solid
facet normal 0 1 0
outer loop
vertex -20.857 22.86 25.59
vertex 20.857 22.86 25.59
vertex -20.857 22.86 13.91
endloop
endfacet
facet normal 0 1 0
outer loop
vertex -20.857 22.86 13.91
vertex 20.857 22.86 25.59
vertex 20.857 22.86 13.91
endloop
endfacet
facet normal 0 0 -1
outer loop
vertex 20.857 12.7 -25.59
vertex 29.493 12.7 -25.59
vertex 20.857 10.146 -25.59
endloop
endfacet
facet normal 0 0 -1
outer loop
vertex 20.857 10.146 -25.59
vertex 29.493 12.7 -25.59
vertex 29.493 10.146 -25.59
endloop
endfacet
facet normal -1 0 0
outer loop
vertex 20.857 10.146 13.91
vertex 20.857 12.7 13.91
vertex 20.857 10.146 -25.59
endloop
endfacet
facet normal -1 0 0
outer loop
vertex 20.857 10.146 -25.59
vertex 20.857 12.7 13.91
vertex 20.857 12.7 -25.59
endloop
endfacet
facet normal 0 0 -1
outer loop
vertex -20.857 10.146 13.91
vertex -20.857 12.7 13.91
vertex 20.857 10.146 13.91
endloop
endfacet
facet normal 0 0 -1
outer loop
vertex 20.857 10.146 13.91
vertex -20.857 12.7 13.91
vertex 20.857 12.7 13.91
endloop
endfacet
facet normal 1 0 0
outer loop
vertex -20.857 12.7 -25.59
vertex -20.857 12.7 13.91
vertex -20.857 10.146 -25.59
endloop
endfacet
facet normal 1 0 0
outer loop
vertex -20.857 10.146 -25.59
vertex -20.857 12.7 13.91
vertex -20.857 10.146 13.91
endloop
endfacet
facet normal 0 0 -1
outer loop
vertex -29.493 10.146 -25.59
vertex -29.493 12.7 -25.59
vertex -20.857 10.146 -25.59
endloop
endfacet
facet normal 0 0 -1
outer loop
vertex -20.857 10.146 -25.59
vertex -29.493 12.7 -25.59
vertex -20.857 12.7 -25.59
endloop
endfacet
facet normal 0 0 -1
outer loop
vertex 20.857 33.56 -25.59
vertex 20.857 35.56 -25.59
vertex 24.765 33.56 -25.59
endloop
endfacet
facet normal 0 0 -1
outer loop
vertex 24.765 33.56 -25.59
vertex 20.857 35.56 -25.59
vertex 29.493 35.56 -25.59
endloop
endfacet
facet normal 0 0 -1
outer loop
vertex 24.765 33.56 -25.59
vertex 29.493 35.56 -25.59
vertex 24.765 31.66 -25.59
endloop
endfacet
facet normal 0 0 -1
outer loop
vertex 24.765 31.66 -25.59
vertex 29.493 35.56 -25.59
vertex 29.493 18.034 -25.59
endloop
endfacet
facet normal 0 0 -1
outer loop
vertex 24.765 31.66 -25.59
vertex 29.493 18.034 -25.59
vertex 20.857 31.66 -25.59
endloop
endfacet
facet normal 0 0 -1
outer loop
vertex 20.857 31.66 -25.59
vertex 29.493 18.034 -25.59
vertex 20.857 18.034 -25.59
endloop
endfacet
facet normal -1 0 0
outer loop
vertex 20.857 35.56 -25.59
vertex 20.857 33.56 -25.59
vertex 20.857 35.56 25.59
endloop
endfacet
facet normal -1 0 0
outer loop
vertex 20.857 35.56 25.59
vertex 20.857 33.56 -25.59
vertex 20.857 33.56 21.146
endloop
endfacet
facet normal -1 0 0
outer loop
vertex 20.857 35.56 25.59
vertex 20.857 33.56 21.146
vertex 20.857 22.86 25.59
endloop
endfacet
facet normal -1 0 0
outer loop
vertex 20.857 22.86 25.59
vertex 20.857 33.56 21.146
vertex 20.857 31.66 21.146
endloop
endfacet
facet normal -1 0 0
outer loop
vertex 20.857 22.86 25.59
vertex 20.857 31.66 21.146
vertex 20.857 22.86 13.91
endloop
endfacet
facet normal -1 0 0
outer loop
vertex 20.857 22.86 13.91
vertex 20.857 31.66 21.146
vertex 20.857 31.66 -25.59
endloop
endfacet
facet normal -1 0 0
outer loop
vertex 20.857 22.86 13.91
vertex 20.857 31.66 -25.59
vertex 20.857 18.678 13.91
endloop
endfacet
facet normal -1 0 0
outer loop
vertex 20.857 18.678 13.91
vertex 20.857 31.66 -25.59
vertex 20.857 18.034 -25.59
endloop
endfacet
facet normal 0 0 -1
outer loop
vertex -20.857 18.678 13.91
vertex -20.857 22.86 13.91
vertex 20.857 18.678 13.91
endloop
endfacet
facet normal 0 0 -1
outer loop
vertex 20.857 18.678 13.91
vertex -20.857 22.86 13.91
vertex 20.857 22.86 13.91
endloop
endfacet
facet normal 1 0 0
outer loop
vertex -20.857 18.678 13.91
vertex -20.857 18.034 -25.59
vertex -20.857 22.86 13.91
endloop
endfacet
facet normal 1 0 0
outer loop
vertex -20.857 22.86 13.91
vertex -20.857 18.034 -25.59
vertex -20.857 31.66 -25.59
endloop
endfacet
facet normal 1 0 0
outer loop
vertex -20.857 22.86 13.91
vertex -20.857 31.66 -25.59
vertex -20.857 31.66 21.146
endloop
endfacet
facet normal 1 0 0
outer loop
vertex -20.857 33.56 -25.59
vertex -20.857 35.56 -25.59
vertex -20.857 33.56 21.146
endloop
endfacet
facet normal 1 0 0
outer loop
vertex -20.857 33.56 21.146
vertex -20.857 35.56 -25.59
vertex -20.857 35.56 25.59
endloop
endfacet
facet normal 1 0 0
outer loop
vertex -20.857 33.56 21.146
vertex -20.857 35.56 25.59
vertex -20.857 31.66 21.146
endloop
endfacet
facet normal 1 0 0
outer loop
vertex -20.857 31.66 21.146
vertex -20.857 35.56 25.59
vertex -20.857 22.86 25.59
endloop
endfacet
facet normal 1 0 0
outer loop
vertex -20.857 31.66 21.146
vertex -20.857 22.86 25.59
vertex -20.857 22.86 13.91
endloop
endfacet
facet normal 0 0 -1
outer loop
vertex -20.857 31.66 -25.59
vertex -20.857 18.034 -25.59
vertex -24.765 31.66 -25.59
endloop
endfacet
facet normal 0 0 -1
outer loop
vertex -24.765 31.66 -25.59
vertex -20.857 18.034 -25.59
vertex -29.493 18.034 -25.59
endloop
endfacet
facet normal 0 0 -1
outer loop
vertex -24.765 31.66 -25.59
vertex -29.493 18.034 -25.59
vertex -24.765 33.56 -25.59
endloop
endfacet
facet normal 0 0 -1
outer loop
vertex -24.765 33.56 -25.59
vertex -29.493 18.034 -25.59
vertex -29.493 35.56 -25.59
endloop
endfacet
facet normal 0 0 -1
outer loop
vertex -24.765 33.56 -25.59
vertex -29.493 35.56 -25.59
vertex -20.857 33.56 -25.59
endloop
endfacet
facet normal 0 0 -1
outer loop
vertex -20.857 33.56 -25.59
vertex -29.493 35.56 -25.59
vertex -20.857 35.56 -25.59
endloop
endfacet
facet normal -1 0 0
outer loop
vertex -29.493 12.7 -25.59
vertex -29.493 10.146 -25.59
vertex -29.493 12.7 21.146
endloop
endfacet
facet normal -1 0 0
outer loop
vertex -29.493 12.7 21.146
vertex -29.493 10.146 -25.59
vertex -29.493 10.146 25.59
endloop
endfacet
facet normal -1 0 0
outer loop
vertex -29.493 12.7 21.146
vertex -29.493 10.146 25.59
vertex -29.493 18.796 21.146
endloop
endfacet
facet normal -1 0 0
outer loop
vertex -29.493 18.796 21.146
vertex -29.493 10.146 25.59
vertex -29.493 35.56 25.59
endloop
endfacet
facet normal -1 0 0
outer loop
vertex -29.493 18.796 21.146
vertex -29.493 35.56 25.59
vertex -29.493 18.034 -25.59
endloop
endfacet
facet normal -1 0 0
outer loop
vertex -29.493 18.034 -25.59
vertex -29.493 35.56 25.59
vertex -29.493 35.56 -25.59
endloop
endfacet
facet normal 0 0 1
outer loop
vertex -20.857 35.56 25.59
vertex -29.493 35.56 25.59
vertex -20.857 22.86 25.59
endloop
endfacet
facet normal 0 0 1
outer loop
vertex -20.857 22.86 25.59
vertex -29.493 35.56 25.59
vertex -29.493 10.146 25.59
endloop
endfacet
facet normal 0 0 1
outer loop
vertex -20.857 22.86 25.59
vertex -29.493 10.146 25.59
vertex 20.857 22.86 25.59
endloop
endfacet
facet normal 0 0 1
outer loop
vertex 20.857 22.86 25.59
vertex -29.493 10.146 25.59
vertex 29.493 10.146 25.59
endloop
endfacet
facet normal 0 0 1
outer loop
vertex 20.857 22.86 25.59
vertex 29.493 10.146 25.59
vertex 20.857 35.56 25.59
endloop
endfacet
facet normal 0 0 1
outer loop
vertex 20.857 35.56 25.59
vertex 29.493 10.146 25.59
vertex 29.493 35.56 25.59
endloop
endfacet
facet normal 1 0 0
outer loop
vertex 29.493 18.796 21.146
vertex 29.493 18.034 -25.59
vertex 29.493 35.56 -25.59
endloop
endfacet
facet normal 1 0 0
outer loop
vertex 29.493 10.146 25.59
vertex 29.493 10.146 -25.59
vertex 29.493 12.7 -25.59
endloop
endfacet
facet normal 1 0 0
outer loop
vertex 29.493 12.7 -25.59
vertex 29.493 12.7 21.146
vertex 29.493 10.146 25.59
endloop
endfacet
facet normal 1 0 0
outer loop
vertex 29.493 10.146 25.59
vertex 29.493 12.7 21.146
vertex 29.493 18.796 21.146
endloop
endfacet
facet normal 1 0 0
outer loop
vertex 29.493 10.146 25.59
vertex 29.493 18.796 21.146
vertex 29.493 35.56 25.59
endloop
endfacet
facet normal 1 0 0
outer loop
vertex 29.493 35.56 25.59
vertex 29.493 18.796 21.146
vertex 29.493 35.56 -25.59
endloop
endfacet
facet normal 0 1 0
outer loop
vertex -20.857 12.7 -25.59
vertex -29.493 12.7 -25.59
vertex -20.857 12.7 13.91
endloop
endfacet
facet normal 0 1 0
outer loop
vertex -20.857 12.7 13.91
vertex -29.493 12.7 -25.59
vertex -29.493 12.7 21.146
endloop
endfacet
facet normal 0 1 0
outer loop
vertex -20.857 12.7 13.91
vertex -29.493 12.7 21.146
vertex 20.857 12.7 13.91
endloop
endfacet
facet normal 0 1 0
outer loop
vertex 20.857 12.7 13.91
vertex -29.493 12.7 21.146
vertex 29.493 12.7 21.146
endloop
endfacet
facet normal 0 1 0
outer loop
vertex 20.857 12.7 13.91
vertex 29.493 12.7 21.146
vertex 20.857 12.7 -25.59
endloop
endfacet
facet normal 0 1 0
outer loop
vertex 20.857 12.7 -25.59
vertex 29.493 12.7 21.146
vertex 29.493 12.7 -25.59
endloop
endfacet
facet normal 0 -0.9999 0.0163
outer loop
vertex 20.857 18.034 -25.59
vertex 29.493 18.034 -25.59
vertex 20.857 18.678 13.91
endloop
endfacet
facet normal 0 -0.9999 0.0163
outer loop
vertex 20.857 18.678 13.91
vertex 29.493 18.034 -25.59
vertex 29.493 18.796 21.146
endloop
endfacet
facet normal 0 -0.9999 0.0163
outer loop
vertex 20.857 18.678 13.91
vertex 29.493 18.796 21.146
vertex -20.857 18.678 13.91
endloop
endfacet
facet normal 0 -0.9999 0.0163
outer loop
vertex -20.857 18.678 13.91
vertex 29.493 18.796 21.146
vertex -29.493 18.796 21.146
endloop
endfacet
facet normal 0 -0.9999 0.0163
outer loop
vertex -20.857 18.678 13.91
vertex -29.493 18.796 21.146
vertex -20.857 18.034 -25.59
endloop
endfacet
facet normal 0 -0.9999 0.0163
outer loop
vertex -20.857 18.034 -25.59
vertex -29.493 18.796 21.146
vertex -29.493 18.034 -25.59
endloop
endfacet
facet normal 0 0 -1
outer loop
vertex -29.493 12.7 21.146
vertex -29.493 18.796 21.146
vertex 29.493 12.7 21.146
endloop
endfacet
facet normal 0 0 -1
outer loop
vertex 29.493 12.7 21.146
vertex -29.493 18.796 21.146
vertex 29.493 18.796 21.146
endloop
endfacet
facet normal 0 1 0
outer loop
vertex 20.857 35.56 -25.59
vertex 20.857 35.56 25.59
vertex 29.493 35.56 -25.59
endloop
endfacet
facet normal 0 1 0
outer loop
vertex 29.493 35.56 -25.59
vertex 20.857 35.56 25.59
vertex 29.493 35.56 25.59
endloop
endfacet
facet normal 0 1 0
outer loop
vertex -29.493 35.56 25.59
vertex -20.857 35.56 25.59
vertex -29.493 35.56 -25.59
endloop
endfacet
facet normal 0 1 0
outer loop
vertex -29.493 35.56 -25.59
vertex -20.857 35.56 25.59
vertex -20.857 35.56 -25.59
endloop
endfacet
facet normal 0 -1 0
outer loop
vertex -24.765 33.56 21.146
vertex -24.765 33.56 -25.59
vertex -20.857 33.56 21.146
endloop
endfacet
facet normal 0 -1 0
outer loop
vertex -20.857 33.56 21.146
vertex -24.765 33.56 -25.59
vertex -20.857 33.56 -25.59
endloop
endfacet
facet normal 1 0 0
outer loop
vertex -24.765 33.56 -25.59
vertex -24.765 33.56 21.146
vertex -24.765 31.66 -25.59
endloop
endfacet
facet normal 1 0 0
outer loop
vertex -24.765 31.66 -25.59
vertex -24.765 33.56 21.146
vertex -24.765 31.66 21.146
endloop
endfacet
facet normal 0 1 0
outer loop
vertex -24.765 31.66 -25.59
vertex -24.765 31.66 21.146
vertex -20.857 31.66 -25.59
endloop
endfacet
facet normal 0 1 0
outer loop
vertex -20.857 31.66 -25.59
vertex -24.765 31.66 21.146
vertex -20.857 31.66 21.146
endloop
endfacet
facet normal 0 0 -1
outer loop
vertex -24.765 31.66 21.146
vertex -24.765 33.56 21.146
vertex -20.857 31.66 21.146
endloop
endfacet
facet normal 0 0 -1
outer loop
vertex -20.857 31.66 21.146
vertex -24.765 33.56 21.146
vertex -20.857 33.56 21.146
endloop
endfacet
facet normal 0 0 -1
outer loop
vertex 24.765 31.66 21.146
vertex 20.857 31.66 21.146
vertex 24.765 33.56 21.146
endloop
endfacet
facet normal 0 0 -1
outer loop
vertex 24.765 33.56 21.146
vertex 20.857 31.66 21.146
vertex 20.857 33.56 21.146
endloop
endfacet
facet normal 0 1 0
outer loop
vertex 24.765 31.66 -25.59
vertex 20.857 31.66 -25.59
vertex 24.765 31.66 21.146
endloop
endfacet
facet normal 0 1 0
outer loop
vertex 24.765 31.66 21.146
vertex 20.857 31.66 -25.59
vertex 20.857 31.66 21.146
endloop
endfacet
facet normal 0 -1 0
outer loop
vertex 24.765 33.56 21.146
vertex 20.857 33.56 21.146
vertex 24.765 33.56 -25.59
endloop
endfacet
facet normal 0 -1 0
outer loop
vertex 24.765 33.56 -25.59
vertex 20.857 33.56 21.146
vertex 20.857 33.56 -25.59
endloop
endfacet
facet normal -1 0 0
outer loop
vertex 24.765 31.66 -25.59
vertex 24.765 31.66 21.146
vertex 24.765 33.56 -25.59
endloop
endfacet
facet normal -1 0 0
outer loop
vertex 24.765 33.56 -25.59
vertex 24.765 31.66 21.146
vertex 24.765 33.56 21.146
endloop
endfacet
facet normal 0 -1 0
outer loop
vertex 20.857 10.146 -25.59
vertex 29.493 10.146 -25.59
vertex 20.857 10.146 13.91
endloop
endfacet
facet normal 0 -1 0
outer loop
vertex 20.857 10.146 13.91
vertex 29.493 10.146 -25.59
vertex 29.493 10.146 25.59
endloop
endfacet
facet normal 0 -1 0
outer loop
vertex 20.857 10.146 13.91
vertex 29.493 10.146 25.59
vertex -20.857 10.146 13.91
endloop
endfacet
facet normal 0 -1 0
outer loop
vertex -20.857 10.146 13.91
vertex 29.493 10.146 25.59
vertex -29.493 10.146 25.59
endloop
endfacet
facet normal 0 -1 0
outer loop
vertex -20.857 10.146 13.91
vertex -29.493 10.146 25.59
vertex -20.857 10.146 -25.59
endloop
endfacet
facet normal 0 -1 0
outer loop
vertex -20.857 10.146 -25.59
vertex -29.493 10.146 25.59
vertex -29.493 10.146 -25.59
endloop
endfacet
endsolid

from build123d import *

# Parameters (mm, degrees)
BOSS_EXTRUDE1_DEPTH = 22.86
SKETCH3_R           = 27.372592865
CUT_EXTRUDE1_DEPTH  = 69.240761179
SKETCH4_R           = 26.837944266
CUT_EXTRUDE2_DEPTH  = 64.339651167
BOSS_EXTRUDE2_START = 22.86
SKETCH2_3_W         = 2.286
SKETCH2_3_H         = 2.286
SKETCH2_3_R         = 1.05
SKETCH2_3_H_2       = 9.395
BOSS_EXTRUDE2_DEPTH = 12.7
SKETCH5_W           = 49.53
SKETCH5_H           = 1.9
CUT_EXTRUDE4_DEPTH  = 46.736
SKETCH6_W           = 51.181
SKETCH6_H           = 10.146462019
CUT_EXTRUDE5_DEPTH  = 74.476087969


with BuildPart() as part:
    # Sketch2 → Boss-Extrude1 (new body)
    with BuildSketch(Plane(origin=(0, 0, 0), x_dir=(1, 0, 0), z_dir=(0, 1, 0))):
        Polygon((29.493, -25.5905), (29.493, 25.5905), (20.857, 25.5905), (20.857, -13.9095), (-20.857, -13.9095), (-20.857, 25.5905), (-29.493, 25.5905), (-29.493, -25.5905), align=None)
    extrude(amount=BOSS_EXTRUDE1_DEPTH)

    # Sketch3 → Cut-Extrude1 (cut, through all)
    with BuildSketch(Plane(origin=(29.493, 0, 0), x_dir=(0, 0, -1), z_dir=(1, 0, 0))):
        with Locations((2.032, -17.226130846)):
            Circle(SKETCH3_R)
        Polygon((25.5905, 12.7), (-21.1455, 12.7), (-21.1455, 18.796), (25.5905, 18.034), align=None)
    extrude(amount=-CUT_EXTRUDE1_DEPTH, mode=Mode.SUBTRACT)

    # Sketch4 → Cut-Extrude2 (cut, through all)
    with BuildSketch(Plane(origin=(0, 0, -25.5905), x_dir=(-1, 0, 0), z_dir=(0, 0, -1))):
        with Locations((0, -16.88966558)):
            Circle(SKETCH4_R)
    extrude(amount=-CUT_EXTRUDE2_DEPTH, mode=Mode.SUBTRACT)

    # Sketch2_3 → Boss-Extrude2 (add)
    with BuildSketch(Plane(origin=(0, 0, 0), x_dir=(1, 0, 0), z_dir=(0, 1, 0)).offset(BOSS_EXTRUDE2_START)):
        with Locations((22, 24.4475)):
            Rectangle(SKETCH2_3_W, SKETCH2_3_H)
        with Locations((22, 24.4475)):
            Circle(SKETCH2_3_R, mode=Mode.SUBTRACT)
        with Locations((22, -15.0525)):
            Rectangle(SKETCH2_3_W, SKETCH2_3_H)
        with Locations((22, -15.0525)):
            Circle(SKETCH2_3_R, mode=Mode.SUBTRACT)
        with Locations((-22, -15.0525)):
            Rectangle(SKETCH2_3_W, SKETCH2_3_H)
        with Locations((-22, -15.0525)):
            Circle(SKETCH2_3_R, mode=Mode.SUBTRACT)
        with Locations((-22, 24.4475)):
            Rectangle(SKETCH2_3_W, SKETCH2_3_H)
        with Locations((-22, 24.4475)):
            Circle(SKETCH2_3_R, mode=Mode.SUBTRACT)
        Polygon((29.493, 25.5905), (23.143, 25.5905), (23.143, 23.3045), (23.143, -13.9095), (23.143, -16.1955), (23.143, -25.5905), (29.493, -25.5905), align=None)
        with Locations((22, -20.893)):
            Rectangle(SKETCH2_3_W, SKETCH2_3_H_2)
        with Locations((-22, -20.893)):
            Rectangle(SKETCH2_3_W, SKETCH2_3_H_2)
        Polygon((-23.143, 23.3045), (-23.143, 25.5905), (-29.493, 25.5905), (-29.493, -25.5905), (-23.143, -25.5905), (-23.143, -16.1955), (-23.143, -13.9095), align=None)
        with Locations((22, -15.0525)):
            Circle(SKETCH2_3_R)
        with Locations((22, 24.4475)):
            Circle(SKETCH2_3_R)
        Polygon((23.143, -13.9095), (23.143, 23.3045), (20.857, 23.3045), (20.857, 4.6975), (20.857, -13.9095), align=None)
        Polygon((-20.857, 4.6975), (-20.857, 23.3045), (-23.143, 23.3045), (-23.143, -13.9095), (-20.857, -13.9095), align=None)
        with Locations((-22, 24.4475)):
            Circle(SKETCH2_3_R)
        with Locations((-22, -15.0525)):
            Circle(SKETCH2_3_R)
    extrude(amount=BOSS_EXTRUDE2_DEPTH)

    # Sketch5 → Cut-Extrude4 (cut)
    with BuildSketch(Plane(origin=(0, 0, -25.5905), x_dir=(-1, 0, 0), z_dir=(0, 0, -1))):
        with Locations((0, 32.61)):
            Rectangle(SKETCH5_W, SKETCH5_H)
    extrude(amount=-CUT_EXTRUDE4_DEPTH, mode=Mode.SUBTRACT)

    # Sketch6 → Cut-Extrude5 (cut, through all)
    with BuildSketch(Plane(origin=(29.493, 0, 0), x_dir=(0, 0, -1), z_dir=(1, 0, 0))):
        with Locations((0, 5.07323101)):
            Rectangle(SKETCH6_W, SKETCH6_H)
    extrude(amount=-CUT_EXTRUDE5_DEPTH, mode=Mode.SUBTRACT)


solid = part.part
